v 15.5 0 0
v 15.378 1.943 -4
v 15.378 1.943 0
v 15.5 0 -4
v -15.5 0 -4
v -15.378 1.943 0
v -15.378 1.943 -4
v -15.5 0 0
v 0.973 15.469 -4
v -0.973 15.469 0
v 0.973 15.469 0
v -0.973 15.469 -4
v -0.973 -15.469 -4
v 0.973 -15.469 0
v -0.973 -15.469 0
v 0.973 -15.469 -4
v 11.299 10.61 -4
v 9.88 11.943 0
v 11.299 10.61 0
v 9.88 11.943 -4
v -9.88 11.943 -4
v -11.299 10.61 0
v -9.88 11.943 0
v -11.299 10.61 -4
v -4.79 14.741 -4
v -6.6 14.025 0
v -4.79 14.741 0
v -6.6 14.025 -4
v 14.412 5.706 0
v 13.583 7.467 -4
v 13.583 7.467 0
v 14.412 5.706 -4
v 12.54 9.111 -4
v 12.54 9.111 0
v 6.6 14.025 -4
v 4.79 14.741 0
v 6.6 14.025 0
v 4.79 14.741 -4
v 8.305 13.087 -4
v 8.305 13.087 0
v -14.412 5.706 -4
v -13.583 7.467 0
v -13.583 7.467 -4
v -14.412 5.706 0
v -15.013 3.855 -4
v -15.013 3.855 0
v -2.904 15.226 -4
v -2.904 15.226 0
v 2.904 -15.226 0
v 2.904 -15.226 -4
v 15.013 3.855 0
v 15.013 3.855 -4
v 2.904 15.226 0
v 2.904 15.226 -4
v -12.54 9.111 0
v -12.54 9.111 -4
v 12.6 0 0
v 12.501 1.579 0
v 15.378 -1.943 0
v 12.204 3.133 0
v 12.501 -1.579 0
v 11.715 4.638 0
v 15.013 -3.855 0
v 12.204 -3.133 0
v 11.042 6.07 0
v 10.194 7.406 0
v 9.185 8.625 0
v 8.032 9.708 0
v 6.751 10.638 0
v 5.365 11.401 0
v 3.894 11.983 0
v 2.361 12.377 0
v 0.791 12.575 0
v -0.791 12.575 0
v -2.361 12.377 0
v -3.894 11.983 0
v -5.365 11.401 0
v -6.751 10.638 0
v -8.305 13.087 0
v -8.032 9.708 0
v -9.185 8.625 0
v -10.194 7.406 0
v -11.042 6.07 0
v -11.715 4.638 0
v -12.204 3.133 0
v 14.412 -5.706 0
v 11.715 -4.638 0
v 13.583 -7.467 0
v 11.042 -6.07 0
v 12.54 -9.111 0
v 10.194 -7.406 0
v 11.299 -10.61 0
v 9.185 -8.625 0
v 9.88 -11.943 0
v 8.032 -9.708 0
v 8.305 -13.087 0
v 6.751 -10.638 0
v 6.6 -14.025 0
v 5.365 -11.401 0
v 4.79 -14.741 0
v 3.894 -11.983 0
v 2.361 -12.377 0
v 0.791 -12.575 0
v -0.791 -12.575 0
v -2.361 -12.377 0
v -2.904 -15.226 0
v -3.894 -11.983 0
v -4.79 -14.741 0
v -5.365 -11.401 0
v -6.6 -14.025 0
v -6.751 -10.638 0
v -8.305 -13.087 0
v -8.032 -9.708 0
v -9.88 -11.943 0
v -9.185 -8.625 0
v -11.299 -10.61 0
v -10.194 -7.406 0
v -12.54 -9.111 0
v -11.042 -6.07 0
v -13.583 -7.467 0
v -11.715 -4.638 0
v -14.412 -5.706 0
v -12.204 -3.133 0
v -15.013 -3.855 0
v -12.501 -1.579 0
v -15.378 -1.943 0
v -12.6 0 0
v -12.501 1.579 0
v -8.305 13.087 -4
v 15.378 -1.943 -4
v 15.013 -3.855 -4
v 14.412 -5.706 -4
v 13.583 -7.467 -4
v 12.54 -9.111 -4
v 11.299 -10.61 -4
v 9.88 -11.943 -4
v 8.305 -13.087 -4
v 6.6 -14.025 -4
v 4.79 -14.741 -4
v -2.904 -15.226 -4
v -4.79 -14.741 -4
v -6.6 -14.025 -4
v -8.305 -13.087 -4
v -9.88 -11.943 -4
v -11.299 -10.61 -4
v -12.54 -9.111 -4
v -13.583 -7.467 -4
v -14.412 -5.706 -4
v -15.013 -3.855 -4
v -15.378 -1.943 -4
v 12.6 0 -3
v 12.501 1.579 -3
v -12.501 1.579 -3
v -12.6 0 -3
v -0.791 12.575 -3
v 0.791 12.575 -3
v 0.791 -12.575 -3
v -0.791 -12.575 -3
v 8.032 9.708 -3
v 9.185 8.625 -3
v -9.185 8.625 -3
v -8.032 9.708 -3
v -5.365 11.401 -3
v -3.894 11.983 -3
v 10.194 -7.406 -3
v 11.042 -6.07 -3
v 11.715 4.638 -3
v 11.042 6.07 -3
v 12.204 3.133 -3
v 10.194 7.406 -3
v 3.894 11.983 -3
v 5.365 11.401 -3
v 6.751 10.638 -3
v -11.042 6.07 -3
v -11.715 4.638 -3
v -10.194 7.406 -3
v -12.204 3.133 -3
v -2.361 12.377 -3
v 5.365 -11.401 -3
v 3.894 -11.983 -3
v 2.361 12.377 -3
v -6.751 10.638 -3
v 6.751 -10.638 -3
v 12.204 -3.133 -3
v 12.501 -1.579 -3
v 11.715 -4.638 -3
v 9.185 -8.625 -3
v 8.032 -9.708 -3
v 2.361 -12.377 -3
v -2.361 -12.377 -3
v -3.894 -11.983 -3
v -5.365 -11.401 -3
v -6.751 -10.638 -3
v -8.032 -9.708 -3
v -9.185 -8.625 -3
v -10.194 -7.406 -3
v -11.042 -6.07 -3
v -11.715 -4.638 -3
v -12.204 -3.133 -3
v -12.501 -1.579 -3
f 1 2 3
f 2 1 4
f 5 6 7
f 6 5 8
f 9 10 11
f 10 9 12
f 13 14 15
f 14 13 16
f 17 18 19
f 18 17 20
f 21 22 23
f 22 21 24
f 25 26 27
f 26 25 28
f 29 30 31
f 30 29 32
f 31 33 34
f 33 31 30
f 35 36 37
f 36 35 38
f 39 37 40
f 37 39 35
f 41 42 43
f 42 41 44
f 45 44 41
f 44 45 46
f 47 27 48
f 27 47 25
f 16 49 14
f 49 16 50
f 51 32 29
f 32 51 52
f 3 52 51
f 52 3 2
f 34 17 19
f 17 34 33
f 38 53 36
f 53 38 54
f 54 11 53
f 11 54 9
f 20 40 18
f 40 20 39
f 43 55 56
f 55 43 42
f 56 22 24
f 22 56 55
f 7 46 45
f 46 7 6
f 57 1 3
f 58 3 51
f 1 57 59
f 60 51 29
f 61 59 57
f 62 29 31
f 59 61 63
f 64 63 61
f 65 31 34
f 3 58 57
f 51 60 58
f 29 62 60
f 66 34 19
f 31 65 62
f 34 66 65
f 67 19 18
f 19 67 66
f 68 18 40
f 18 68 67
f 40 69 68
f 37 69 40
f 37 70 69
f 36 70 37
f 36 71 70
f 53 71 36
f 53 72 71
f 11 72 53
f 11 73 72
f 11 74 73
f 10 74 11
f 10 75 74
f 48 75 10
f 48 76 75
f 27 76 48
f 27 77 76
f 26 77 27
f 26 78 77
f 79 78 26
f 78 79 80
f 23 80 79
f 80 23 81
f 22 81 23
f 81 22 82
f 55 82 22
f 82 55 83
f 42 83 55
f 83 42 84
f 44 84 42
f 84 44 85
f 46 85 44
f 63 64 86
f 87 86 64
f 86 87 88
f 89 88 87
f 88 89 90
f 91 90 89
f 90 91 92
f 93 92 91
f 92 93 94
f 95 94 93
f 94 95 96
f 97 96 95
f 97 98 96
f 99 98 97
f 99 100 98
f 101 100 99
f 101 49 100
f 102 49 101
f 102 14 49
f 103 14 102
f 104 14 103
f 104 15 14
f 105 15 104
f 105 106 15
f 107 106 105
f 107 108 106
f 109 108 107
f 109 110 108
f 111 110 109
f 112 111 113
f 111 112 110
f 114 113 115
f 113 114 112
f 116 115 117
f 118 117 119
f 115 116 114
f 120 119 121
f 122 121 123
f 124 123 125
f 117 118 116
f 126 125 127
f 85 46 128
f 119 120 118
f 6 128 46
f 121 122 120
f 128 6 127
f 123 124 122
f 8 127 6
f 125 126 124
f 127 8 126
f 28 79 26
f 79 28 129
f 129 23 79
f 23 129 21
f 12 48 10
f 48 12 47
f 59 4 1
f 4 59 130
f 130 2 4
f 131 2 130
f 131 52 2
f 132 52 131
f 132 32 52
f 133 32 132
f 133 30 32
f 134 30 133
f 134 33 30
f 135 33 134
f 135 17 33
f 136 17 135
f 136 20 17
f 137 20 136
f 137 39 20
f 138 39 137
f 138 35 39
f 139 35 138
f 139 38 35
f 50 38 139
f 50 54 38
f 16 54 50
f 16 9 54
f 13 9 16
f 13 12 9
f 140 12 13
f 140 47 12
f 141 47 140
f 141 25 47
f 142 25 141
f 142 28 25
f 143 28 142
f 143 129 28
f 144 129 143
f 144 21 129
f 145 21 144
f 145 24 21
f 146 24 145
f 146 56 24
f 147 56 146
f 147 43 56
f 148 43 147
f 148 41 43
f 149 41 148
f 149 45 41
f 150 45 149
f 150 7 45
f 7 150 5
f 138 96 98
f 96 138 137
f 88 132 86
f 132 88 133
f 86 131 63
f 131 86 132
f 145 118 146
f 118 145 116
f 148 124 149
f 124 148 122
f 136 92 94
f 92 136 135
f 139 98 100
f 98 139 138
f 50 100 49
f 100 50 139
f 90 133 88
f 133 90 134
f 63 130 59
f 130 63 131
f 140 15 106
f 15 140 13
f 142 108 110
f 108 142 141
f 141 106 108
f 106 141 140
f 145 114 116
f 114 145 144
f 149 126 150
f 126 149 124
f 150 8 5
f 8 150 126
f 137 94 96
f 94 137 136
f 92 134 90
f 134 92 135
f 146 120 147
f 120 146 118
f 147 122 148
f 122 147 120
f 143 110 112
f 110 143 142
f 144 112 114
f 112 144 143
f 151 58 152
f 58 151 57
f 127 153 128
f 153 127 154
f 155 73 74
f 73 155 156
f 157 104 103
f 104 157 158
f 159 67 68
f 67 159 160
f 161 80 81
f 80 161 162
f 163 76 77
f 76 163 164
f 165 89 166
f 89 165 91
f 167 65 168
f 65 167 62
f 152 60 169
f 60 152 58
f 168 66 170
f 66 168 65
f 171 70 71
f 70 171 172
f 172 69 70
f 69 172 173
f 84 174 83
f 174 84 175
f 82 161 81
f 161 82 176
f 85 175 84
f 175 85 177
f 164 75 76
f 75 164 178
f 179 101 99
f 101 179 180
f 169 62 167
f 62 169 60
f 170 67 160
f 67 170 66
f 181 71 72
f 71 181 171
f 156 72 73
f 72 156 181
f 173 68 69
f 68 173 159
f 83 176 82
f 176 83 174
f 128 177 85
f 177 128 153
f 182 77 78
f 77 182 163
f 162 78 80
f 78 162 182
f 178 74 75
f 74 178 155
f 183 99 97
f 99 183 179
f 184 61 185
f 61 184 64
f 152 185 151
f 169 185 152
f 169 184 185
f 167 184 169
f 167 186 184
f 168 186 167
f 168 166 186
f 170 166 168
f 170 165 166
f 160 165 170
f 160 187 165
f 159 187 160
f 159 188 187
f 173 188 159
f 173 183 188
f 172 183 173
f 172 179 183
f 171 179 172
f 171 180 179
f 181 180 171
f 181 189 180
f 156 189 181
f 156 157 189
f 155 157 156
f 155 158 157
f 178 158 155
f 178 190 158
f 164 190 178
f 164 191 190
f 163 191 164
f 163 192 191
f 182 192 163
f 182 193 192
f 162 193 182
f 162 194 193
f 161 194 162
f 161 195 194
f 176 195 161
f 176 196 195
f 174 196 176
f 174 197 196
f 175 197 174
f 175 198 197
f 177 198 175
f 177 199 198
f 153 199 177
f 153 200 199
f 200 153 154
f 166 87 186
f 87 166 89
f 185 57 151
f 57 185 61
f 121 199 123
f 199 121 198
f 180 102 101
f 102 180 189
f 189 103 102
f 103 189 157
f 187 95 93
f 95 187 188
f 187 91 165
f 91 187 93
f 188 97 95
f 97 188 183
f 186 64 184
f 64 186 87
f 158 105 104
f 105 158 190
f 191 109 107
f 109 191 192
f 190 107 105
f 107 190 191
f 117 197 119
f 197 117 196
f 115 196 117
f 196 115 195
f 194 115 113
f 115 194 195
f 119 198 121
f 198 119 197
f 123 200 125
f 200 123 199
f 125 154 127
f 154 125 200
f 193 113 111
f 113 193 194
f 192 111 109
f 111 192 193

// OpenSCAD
$fn = 50;


difference() {
	union() {
		translate(v = [0, 0, -4.0000000000]) {
			cylinder(h = 4, r = 15.5000000000);
		}
	}
	union() {
		#translate(v = [0, 0, -3.0000000000]) {
			cylinder(h = 3, r = 12.6000000000);
		}
	}
}
